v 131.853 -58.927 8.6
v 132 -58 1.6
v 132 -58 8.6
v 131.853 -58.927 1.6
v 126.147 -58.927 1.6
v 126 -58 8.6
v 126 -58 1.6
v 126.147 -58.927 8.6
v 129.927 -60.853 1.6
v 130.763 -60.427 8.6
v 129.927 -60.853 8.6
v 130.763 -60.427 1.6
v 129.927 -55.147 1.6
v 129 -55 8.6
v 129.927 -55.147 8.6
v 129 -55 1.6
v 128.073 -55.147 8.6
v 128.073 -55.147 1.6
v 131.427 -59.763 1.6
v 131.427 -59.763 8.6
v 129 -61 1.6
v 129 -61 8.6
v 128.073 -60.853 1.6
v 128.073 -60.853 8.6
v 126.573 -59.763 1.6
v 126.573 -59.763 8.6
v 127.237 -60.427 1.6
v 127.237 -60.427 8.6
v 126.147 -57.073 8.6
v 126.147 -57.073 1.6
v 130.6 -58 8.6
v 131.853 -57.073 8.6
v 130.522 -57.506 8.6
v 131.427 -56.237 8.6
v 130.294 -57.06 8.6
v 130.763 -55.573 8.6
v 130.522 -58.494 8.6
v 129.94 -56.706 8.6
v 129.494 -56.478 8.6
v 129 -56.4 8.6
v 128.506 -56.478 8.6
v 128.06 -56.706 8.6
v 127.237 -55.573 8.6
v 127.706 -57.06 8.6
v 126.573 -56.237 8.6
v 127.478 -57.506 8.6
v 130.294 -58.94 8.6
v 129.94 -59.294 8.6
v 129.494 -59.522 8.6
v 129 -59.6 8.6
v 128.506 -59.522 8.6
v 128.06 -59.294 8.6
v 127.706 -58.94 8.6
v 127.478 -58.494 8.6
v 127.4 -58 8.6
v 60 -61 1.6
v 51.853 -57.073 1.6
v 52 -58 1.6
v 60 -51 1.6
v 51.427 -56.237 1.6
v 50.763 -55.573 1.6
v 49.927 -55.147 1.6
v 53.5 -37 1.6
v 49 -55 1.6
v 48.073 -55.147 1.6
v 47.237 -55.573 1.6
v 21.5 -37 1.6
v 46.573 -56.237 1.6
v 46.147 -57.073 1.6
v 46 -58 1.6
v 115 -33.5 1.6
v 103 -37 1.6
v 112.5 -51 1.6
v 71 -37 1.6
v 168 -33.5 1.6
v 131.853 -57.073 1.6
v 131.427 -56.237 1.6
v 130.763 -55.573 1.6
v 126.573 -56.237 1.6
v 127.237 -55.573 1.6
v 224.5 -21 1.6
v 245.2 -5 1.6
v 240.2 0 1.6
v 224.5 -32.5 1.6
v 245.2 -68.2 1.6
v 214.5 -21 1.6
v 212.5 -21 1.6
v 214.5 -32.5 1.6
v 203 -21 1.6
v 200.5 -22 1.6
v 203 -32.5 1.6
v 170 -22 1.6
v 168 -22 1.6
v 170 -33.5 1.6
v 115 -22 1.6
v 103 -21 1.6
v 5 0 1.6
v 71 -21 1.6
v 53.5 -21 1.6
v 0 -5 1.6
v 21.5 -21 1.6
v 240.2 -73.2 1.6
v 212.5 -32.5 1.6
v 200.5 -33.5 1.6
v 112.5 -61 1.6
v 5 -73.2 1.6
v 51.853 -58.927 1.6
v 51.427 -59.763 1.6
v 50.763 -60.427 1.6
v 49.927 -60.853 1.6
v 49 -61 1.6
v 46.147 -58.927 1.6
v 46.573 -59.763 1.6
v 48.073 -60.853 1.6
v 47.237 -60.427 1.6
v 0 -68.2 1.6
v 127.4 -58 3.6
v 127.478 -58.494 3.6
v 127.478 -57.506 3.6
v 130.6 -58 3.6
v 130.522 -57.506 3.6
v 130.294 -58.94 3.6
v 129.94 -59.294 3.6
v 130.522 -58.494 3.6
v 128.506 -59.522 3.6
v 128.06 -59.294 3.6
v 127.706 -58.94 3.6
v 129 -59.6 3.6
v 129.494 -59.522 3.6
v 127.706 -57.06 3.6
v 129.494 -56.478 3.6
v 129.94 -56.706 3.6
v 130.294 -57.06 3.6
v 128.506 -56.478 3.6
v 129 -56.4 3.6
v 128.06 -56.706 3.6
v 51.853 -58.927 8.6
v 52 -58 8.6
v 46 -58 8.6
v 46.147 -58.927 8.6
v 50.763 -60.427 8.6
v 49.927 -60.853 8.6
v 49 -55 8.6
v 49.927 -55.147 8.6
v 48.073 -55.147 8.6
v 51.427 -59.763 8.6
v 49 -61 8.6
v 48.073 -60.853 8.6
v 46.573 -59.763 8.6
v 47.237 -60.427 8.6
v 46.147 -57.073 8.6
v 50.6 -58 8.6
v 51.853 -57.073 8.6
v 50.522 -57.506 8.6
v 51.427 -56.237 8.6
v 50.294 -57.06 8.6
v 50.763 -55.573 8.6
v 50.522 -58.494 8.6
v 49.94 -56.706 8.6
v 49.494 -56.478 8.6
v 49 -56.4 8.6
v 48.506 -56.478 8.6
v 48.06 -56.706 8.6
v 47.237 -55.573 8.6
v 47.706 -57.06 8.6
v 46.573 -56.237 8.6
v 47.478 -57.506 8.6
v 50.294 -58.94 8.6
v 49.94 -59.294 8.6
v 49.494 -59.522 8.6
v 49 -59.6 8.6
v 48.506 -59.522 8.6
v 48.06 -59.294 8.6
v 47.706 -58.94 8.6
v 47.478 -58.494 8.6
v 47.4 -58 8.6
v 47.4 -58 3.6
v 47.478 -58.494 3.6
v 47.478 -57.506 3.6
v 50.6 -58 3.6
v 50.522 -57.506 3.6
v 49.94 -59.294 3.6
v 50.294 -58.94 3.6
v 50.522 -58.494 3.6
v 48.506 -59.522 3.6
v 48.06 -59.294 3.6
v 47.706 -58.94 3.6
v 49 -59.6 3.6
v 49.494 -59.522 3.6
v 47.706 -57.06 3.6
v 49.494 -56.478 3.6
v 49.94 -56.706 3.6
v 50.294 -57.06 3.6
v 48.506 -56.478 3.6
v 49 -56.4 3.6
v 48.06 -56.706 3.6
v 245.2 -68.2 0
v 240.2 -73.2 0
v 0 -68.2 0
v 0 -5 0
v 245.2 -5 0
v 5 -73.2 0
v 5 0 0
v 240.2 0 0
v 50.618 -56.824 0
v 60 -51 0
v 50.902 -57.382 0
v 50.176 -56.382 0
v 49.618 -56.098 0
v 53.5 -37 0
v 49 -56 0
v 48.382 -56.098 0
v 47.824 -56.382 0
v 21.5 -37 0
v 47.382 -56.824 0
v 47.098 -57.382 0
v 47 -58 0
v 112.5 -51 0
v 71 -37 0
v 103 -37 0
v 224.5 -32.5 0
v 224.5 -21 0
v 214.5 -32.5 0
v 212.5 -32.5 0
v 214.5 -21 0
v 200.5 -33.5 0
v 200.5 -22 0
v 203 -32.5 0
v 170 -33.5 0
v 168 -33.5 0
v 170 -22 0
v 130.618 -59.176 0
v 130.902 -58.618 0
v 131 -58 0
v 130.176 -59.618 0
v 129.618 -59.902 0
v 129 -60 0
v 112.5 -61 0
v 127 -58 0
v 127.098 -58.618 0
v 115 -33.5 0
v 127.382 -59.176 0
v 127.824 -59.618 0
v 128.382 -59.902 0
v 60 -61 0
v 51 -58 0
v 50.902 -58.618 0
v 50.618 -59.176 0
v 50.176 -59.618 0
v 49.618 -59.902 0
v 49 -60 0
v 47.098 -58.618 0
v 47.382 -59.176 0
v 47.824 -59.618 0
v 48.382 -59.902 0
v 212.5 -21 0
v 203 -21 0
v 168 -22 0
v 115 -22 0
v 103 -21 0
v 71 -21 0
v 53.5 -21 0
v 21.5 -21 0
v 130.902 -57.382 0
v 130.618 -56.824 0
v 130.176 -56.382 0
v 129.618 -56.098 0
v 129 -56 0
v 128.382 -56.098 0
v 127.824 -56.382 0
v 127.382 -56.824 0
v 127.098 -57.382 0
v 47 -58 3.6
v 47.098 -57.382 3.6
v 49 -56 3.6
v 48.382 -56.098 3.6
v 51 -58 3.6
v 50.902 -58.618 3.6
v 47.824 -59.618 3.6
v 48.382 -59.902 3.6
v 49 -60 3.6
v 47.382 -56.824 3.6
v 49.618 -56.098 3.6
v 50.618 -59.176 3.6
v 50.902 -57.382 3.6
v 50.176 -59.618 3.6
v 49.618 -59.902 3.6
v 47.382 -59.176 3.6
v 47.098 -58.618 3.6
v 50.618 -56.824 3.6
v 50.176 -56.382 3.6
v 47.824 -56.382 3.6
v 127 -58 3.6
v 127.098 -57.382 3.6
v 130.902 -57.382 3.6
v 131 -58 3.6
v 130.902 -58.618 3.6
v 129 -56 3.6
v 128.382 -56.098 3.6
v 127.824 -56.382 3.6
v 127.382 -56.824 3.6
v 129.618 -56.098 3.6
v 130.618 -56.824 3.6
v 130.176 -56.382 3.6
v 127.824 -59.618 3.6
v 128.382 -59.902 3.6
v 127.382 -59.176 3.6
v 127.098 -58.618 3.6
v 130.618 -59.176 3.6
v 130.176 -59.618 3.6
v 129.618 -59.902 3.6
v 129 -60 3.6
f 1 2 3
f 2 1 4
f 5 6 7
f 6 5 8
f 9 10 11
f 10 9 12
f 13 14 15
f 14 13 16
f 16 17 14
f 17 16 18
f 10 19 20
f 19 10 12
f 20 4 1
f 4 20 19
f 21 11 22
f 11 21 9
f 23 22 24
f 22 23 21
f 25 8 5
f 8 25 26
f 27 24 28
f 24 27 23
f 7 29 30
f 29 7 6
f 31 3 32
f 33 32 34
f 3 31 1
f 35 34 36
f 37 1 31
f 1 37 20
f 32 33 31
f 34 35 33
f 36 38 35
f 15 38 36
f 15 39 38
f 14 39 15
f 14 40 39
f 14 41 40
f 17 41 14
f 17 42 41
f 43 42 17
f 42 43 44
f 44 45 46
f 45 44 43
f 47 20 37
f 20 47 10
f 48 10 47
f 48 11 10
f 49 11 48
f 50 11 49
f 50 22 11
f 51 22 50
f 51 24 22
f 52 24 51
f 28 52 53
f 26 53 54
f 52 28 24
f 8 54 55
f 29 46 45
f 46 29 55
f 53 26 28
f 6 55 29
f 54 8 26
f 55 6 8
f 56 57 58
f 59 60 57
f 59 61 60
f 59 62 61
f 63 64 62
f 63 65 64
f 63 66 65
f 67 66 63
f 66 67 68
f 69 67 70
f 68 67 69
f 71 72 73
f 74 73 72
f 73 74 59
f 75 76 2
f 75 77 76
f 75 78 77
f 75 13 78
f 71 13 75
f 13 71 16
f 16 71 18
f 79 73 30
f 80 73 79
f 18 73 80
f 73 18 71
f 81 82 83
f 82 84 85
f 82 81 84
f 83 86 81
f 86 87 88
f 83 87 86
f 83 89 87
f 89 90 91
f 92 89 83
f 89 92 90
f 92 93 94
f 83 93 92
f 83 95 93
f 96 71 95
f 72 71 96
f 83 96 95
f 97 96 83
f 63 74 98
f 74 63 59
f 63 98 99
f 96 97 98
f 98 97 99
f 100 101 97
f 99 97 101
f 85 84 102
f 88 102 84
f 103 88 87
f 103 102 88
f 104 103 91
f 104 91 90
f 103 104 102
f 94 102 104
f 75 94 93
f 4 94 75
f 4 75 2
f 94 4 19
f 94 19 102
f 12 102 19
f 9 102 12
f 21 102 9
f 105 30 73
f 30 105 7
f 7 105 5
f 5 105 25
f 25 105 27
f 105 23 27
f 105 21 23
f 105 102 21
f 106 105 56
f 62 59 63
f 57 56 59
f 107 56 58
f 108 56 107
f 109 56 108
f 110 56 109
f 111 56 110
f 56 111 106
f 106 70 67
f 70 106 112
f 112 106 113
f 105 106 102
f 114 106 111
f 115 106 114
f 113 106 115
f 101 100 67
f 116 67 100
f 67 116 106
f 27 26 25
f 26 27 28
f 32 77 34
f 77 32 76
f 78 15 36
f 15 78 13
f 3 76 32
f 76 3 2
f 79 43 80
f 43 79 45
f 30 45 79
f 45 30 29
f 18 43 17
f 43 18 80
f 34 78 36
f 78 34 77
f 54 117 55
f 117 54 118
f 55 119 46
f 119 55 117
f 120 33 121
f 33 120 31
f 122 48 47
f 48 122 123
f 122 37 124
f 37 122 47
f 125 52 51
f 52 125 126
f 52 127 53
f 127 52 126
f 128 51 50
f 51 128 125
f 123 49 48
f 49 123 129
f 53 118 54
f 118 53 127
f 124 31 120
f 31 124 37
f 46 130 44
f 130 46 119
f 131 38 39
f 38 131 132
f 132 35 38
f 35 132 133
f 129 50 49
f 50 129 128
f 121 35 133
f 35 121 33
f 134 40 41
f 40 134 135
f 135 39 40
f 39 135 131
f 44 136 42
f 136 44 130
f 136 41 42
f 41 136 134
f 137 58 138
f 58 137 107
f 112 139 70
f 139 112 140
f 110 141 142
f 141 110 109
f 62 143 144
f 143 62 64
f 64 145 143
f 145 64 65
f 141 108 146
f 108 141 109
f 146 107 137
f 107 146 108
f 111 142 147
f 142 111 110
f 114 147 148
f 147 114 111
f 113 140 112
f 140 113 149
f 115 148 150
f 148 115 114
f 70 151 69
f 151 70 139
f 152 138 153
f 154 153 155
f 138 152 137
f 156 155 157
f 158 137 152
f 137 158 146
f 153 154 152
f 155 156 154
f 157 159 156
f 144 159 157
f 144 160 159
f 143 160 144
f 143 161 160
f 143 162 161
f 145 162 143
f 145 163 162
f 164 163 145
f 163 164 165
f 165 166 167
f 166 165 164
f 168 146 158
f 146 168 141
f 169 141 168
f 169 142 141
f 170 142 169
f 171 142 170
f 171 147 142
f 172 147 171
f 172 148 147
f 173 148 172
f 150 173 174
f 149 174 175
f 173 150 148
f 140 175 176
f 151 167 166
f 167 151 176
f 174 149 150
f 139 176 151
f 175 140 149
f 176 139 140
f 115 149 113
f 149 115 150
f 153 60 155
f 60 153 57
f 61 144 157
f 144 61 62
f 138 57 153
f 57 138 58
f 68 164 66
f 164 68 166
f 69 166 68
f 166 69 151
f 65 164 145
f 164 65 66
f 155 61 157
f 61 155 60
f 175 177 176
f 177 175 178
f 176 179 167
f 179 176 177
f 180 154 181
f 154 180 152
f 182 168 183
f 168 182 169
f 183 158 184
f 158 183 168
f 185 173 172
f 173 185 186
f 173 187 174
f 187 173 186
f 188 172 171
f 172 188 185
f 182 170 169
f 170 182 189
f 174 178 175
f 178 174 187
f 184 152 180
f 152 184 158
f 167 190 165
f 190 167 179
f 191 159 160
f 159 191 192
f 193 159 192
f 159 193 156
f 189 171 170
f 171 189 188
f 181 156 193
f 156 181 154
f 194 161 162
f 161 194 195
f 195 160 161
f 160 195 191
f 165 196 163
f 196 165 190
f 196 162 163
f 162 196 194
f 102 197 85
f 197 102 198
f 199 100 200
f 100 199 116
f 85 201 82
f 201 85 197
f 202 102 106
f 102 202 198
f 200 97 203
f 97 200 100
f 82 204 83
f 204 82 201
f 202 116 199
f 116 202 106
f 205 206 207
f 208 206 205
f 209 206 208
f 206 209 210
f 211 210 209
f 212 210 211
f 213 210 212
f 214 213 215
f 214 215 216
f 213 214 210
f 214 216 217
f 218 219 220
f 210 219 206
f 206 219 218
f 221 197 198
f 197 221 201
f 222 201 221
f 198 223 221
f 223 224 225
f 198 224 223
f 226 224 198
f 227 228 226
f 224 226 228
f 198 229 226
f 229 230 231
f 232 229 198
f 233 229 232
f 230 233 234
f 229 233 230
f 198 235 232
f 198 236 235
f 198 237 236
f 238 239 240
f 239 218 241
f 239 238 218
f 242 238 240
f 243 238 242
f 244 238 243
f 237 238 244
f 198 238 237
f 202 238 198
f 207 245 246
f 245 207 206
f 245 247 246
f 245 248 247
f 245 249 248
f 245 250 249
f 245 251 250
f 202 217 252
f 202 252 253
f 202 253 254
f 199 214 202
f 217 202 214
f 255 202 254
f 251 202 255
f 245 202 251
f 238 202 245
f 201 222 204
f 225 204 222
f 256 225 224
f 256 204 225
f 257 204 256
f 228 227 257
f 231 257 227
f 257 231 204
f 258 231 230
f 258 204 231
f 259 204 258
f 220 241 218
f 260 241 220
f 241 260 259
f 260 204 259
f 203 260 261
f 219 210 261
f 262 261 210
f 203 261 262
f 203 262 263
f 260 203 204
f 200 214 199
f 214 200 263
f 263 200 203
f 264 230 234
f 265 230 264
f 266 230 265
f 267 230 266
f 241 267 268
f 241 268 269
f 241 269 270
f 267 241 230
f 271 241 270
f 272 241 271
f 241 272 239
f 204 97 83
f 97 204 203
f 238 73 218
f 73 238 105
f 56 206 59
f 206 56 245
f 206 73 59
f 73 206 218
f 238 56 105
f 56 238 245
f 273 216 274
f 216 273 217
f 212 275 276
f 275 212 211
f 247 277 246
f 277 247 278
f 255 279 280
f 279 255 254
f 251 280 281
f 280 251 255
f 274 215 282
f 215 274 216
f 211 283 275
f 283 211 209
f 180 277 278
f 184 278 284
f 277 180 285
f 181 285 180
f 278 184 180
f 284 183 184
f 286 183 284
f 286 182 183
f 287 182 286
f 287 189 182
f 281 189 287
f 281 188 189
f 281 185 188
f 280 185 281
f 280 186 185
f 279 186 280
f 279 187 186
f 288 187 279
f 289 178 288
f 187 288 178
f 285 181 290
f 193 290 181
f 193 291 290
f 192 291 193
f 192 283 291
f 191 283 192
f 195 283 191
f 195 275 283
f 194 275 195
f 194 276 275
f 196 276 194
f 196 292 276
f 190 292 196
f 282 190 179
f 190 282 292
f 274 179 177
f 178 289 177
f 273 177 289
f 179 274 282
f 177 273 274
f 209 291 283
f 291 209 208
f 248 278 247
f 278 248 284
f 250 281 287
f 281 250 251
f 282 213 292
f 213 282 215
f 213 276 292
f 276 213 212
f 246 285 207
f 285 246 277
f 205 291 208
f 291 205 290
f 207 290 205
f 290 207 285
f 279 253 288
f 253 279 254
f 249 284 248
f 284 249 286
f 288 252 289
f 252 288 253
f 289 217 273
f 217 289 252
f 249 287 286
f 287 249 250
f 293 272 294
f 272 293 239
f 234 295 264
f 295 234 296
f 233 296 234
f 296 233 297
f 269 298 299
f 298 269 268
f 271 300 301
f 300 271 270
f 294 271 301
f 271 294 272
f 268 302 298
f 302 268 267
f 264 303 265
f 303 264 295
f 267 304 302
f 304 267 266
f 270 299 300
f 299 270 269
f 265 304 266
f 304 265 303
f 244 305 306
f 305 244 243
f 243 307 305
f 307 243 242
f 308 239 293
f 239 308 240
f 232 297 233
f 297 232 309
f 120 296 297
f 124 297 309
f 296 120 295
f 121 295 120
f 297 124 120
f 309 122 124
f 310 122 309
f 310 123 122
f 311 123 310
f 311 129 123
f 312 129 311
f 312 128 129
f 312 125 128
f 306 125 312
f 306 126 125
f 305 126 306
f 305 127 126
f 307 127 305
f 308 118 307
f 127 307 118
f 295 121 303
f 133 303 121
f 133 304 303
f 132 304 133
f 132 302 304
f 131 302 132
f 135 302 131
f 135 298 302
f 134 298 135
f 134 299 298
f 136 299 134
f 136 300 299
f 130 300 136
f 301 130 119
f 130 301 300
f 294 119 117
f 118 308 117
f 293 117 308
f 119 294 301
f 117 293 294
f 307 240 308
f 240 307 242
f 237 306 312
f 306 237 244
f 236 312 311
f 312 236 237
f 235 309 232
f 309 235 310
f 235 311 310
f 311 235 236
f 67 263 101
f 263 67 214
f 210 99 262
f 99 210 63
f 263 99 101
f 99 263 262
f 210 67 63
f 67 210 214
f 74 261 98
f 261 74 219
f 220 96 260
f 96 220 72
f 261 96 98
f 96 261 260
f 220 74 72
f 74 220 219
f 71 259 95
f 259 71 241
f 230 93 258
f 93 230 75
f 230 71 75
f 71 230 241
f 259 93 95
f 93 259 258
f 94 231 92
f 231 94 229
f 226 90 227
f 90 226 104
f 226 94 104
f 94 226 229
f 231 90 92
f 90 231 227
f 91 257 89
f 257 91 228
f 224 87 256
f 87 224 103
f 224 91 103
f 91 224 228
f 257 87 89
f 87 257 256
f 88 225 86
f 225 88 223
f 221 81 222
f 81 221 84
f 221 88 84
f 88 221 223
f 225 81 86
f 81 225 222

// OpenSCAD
$fn = 20;

thick = 2;
tf = 1.2;

xmax = 250;
ymax = 180+thick;
zmax = 39*2;

dev_x = 21.5;
dev_bot = 21;

edge=5;

translate([0, 0, 1.6])
    rotate([180,0,0])
        shape();

module shape() {
    difference(){
        base_shape();
        
        translate([dev_x, dev_bot, 0])
            sio();
        
        translate([dev_x+17.5+32, dev_bot, 0])
            sio();
        
        translate([dev_x+17.5+31+32+13, dev_bot+1, 0])
            par();
        
        translate([dev_x+17.5+31+32+13+53+2, dev_bot+1, 0])
            ser();

        translate([dev_x+17.5+32+32+12+86+2, dev_bot, 0])
            barrel();
        
        translate([dev_x+17+32+32+12+86+3+9+2, dev_bot, 0])
            dipswitch();

        translate([60+60.5, 63,0])
            floppy();
        
    }
    
    /*
    translate([0,0,1]) 
        rotate([180, 0, 0]) 
            beschriftung();
    */
    
    /*
    translate([edge, zmax-4*thick-edge, -thick])
        cube([xmax-2*edge-4*thick, 3, 3]);

    translate([edge, 32, -thick])
        cube([xmax-2*edge-4*thick, 3, 3]);

    translate([edge, 5, -thick])
        cube([xmax-2*edge-4*thick, 3, 3]);
    */

}

module dipswitch() {
    cube([10, 11.5, thick]);
}

module barrel() {
    cube([9.5, 11.5, thick]);
}

module par() {
    cube([53, 11.5, thick]);
}

module ser() {
    cube([30.5, 11.5, thick]);
}

module sio() {
    cube([32, 16, thick]);
}

module base_shape() {
    
    rotate([0,0,0])
    linear_extrude(1.6)
        base_shape_2d(thick * tf);
    
    translate([60+60.5+8.5, 58, -7])
        spacer_round();
    translate([49, 58, -7])
        spacer_round();

}

module base_shape_2d(th) {
    
    echo("width:", xmax-2*th);
    echo("height:", zmax-2*th);
    
    polygon([[0, zmax-edge-2*th], [0, edge], [edge,0], [xmax-edge-2*th, 0], [xmax-2*th, edge], [xmax-2*th, zmax-edge-2*th],[xmax-edge-2*th, zmax-2*th], [edge, zmax-2*th]  ]);
}

module floppy() {
    rotate([0,0,180])
    translate([0,0,-thick]) {
        translate([8, 2, 0])
    cube([52.5, 10, 2*thick]);
    
    translate([60+11.5, 5, 0])
        cylinder(2*thick, 2, 2);
    
    translate([-8.5, 5, 0])
        cylinder(2*thick, 2, 2);
    }
}

module spacer_round() {
    difference(){
        cylinder(h=7, r=3);
            cylinder(h=7, r=1.6);
        
    };
}

module beschriftung() {
    
    translate([60, -47, -1.6])
    linear_extrude(1.0){
        rotate([180, 0, 0])
            text("1                SHUGART", 3, "Arial:style=Bold");
    }

     translate([33, -16, -1.6])
    linear_extrude(0.2){
        rotate([180, 0, 0])
            text("SIO                                      SIO                                 CENTRONICS                       RS232          +5V  FUNC", 3, "Arial:style=Bold");
    }

}
